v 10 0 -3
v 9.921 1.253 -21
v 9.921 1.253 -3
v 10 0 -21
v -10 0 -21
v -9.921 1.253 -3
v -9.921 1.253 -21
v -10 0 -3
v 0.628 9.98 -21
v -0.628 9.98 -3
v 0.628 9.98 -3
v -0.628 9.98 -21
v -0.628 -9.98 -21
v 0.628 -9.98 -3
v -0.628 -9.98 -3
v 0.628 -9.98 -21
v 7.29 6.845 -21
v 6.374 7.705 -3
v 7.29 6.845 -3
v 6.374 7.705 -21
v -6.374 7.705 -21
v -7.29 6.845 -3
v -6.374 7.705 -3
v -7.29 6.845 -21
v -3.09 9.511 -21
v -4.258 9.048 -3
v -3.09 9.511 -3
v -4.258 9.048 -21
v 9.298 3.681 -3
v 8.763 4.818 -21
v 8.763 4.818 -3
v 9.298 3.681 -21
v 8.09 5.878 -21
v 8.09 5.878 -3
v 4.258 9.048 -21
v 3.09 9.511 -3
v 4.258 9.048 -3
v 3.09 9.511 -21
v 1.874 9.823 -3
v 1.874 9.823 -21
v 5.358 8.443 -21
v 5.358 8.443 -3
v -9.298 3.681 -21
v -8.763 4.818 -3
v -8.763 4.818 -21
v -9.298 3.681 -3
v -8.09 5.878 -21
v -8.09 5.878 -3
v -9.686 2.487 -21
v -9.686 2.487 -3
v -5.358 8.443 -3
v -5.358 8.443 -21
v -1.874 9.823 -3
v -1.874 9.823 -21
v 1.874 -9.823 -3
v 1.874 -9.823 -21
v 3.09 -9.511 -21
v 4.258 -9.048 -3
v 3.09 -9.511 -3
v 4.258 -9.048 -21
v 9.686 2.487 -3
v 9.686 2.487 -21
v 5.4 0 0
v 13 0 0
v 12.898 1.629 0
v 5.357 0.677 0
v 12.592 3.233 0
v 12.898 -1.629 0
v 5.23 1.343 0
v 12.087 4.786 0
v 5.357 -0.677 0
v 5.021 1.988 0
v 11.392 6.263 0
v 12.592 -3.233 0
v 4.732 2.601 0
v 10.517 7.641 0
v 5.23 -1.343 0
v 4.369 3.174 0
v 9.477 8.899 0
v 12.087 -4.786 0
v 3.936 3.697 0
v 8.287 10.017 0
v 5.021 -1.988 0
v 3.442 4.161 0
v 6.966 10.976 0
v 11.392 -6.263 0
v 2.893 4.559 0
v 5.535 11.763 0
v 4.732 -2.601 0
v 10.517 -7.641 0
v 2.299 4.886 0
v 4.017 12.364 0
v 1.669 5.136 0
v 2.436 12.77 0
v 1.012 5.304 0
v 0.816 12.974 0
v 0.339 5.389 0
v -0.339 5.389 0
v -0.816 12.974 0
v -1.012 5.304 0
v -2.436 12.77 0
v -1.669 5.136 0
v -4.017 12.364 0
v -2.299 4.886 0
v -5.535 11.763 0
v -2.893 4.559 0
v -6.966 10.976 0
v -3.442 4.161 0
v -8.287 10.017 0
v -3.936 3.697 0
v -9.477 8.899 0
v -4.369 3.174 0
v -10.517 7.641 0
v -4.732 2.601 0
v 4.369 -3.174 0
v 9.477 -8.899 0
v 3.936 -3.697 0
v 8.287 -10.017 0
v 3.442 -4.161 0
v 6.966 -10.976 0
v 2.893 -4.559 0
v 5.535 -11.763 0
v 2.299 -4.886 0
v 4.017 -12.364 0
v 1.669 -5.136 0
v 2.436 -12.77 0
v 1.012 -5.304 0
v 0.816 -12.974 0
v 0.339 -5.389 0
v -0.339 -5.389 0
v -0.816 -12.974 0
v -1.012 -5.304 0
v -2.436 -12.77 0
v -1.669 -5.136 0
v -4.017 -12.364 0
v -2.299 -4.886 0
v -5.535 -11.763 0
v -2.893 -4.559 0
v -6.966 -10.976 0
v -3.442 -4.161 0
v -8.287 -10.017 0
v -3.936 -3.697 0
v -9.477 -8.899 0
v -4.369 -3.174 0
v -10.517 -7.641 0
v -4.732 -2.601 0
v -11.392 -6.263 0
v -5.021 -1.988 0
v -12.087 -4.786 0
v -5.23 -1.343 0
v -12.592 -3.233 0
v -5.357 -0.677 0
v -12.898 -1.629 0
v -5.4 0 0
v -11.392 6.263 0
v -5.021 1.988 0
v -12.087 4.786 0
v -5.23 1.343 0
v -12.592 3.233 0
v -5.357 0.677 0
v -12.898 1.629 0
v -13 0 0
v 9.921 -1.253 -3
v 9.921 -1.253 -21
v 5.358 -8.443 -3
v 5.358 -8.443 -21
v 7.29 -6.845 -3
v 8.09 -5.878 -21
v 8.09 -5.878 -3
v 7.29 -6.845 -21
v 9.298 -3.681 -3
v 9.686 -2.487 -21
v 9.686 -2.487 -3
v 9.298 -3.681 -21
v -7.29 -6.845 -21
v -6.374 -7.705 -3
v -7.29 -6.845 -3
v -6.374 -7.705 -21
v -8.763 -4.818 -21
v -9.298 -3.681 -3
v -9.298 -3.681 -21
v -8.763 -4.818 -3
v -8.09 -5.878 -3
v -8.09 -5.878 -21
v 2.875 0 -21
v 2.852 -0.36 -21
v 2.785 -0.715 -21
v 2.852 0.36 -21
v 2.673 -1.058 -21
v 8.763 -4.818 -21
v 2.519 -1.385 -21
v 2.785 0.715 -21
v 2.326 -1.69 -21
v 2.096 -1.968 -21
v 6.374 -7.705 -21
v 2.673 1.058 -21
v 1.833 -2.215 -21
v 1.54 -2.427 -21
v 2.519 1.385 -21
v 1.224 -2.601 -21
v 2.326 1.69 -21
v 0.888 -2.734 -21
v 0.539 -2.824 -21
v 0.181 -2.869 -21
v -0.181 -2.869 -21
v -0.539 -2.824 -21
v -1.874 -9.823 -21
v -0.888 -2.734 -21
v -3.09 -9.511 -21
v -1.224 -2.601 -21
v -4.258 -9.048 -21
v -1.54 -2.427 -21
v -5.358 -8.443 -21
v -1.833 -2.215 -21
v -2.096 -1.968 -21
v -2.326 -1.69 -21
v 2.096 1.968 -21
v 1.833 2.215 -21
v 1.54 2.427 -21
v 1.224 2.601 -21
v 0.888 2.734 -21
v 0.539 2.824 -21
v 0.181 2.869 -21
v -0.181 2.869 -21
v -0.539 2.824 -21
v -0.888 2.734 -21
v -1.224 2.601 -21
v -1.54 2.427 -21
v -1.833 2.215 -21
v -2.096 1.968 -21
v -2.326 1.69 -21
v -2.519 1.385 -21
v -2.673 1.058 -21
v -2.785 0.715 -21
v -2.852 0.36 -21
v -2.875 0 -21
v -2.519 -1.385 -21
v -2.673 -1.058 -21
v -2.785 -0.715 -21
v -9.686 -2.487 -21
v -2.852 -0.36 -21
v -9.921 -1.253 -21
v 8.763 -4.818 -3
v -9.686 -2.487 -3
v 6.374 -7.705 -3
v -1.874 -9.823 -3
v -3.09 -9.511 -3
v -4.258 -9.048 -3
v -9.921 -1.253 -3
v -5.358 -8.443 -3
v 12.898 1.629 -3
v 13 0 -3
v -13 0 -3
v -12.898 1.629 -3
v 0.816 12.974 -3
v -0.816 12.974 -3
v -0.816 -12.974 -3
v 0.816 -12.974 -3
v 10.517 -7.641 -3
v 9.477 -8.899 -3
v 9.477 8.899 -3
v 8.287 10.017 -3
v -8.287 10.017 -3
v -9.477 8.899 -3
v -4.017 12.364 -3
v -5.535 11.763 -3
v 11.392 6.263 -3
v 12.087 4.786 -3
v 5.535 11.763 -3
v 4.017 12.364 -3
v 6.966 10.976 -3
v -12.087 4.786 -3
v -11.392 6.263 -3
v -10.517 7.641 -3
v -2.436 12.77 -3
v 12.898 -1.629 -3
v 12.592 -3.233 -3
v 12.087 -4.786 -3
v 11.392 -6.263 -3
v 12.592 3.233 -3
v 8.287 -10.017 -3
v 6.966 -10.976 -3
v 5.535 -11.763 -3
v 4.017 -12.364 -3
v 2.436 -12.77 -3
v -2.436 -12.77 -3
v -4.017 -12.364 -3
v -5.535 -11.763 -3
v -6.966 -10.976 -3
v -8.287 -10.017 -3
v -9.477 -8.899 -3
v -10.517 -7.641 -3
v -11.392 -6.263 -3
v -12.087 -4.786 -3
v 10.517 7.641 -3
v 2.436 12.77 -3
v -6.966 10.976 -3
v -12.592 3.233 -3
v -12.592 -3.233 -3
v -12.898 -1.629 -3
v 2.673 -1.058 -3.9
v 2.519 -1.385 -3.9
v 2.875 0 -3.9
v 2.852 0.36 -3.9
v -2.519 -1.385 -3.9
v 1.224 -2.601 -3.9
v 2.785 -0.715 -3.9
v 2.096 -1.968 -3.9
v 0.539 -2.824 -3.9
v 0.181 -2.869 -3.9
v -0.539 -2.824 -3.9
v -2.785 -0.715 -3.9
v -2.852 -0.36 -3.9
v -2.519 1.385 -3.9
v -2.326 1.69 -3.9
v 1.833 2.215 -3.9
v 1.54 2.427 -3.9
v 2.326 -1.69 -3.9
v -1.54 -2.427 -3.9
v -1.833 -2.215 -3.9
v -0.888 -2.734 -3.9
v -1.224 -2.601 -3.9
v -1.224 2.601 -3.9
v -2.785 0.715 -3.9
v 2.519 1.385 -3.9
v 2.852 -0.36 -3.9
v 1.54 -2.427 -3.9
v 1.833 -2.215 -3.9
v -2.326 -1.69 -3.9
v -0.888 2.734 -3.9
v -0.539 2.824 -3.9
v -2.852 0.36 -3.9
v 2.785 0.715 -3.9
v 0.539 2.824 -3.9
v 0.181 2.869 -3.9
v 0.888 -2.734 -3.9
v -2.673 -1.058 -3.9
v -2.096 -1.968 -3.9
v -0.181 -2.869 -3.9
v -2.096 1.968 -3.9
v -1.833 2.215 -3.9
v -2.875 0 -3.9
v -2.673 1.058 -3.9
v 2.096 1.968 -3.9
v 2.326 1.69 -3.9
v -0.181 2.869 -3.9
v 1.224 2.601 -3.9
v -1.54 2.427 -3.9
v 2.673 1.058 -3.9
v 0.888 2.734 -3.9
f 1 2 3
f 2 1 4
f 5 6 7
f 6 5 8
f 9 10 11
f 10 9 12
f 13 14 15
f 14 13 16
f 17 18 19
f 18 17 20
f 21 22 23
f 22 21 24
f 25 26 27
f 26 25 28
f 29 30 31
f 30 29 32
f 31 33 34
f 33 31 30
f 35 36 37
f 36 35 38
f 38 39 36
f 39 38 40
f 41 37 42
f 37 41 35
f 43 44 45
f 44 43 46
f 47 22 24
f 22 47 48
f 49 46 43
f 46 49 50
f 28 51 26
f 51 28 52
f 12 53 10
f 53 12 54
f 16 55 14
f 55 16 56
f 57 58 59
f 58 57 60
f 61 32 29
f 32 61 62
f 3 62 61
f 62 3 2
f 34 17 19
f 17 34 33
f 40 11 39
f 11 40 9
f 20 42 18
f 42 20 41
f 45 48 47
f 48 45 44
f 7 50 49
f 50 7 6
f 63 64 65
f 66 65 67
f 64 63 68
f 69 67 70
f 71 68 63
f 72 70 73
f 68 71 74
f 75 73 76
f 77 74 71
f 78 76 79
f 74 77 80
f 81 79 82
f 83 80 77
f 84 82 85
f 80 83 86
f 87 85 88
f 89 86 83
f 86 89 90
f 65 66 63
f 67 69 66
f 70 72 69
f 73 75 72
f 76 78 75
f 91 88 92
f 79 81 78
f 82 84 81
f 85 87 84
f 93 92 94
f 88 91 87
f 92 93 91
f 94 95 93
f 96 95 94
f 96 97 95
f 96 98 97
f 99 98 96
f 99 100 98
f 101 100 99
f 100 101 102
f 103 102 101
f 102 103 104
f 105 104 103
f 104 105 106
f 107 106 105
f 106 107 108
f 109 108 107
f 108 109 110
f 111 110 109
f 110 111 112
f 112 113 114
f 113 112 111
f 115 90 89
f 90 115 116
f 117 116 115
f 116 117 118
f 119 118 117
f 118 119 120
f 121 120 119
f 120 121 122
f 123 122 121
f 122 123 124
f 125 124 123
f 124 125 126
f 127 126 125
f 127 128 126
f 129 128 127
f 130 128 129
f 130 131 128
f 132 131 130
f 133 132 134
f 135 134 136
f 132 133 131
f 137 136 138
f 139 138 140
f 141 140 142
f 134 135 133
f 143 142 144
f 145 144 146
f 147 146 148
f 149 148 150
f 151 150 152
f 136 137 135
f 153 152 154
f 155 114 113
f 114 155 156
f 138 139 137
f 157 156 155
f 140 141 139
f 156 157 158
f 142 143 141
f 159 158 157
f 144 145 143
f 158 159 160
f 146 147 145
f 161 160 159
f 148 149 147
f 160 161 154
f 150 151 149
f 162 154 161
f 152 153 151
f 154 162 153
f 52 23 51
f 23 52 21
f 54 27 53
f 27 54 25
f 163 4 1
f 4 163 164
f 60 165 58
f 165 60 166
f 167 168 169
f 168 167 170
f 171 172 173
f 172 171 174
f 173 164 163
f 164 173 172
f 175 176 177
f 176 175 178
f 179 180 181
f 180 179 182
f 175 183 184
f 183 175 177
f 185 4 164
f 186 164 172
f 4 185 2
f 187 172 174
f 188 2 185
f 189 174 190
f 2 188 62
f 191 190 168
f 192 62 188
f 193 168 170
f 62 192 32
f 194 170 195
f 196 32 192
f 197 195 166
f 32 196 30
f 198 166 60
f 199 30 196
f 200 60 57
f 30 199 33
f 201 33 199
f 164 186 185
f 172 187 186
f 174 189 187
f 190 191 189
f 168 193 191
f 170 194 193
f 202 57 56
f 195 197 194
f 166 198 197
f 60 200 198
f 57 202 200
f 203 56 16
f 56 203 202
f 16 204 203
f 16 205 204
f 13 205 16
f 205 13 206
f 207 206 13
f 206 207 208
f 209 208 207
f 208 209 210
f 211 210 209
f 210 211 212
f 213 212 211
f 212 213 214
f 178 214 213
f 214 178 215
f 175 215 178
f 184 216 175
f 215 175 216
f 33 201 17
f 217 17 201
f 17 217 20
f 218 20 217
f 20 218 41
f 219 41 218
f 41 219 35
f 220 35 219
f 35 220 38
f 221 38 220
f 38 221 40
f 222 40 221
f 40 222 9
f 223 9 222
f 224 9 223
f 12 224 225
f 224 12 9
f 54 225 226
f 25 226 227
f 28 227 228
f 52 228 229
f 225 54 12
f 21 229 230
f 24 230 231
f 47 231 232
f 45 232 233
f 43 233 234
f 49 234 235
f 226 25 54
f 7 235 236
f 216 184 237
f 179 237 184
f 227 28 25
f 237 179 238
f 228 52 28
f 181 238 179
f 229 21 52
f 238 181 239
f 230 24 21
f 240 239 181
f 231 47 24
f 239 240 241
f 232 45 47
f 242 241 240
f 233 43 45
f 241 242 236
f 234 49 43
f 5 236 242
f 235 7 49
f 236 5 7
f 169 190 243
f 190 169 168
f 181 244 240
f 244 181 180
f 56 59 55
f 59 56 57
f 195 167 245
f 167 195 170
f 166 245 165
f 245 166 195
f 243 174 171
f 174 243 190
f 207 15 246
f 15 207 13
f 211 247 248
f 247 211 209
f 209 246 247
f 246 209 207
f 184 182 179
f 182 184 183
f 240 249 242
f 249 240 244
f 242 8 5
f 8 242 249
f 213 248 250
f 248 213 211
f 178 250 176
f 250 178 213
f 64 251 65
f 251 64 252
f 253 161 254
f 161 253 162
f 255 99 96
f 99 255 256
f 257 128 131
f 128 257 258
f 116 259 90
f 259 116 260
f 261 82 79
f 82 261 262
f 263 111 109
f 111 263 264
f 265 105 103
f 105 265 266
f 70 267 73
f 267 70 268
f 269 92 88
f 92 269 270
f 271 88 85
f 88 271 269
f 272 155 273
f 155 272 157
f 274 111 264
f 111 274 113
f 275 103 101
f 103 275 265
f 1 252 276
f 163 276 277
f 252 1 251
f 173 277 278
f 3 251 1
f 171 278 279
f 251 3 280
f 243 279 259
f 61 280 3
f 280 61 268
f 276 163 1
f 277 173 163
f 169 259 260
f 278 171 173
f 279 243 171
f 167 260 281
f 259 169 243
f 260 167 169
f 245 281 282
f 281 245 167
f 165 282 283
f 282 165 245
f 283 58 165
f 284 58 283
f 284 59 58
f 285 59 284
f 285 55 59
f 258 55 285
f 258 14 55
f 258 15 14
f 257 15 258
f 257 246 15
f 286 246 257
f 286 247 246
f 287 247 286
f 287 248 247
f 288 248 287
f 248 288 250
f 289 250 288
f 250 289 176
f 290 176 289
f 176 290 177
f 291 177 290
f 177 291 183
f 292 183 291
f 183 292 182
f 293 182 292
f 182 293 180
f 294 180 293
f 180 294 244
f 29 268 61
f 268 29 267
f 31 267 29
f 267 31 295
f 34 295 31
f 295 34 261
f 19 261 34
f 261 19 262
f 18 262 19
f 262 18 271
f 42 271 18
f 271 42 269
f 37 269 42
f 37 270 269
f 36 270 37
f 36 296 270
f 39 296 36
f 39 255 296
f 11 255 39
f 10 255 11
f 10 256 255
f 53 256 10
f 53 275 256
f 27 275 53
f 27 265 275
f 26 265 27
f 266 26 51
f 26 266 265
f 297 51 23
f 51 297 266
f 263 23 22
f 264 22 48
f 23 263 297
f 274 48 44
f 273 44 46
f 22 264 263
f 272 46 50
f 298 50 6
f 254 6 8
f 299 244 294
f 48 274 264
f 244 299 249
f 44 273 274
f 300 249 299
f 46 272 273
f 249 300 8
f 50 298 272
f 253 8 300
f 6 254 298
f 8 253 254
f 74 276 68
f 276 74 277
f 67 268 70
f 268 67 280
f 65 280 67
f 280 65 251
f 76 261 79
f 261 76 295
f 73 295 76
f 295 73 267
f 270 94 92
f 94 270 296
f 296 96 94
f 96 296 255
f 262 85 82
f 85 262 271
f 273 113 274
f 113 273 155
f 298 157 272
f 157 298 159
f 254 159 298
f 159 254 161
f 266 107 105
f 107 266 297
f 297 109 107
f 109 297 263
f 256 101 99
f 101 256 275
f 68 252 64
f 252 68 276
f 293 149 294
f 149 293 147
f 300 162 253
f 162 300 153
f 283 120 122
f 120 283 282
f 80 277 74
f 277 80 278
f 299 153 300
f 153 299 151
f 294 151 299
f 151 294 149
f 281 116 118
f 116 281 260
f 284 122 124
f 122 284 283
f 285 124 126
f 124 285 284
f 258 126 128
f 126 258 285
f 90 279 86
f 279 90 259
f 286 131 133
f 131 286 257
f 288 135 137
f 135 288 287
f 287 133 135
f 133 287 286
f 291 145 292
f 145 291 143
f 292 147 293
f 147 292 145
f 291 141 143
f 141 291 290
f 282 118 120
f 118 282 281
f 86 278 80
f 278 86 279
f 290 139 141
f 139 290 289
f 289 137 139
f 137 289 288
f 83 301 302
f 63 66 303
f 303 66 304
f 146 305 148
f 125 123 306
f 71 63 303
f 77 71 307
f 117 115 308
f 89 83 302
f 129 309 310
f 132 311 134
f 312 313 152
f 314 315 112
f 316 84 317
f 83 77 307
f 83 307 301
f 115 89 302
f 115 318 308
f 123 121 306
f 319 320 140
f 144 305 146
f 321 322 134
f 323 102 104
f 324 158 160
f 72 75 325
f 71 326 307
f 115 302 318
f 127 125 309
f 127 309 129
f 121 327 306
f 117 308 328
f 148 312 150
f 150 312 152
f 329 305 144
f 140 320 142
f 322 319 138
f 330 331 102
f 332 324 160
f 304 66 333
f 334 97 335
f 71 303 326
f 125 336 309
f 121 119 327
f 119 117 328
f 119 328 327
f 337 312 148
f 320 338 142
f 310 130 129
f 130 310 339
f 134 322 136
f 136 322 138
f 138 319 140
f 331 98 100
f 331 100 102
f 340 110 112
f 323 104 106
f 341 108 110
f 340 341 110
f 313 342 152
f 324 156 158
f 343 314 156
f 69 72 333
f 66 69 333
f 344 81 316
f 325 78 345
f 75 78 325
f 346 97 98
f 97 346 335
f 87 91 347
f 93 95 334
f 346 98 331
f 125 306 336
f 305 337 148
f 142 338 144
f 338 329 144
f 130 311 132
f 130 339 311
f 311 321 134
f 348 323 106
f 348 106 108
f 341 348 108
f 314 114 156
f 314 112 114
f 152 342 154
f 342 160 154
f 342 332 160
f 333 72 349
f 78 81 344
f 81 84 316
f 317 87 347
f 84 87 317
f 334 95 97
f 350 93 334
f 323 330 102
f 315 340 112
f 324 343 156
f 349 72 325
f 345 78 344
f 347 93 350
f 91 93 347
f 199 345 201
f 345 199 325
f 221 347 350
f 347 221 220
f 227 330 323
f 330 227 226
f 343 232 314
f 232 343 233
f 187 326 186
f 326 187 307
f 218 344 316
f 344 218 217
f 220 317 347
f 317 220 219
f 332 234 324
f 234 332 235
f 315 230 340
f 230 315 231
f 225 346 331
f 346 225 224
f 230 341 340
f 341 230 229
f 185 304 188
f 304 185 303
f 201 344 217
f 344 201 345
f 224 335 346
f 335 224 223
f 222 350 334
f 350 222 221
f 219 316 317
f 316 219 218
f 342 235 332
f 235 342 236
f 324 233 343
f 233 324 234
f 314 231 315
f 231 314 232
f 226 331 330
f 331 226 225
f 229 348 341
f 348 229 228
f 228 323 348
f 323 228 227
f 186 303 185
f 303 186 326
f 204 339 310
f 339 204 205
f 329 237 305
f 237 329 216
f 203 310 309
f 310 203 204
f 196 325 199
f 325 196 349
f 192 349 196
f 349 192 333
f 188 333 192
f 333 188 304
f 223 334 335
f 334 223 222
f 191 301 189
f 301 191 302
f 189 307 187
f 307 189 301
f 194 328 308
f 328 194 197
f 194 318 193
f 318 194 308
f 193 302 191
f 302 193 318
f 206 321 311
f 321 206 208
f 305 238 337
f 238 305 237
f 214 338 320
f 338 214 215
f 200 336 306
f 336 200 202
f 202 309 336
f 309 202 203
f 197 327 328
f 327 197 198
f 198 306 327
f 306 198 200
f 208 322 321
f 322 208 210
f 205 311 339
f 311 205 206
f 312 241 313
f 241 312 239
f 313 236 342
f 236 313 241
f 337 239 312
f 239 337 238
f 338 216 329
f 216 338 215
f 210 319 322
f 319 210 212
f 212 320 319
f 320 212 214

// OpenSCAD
$fn = 50;


difference() {
	union() {
		translate(v = [0, 0, -21.0000000000]) {
			cylinder(h = 21, r = 10.0000000000);
		}
		translate(v = [0, 0, -3.0000000000]) {
			cylinder(h = 3, r = 13.0000000000);
		}
	}
	union() {
		translate(v = [0, 0, 0]) {
			rotate(a = [0, 0, 0]) {
				difference() {
					union() {
						#translate(v = [0, 0, -21.0000000000]) {
							cylinder(h = 21, r = 2.6000000000);
						}
						#translate(v = [0, 0, -3.9000000000]) {
							cylinder(h = 3.9000000000, r1 = 2.8750000000, r2 = 5.4000000000);
						}
						#translate(v = [0, 0, -21.0000000000]) {
							cylinder(h = 21, r = 2.8750000000);
						}
						#translate(v = [0, 0, -21.0000000000]) {
							cylinder(h = 21, r = 2.6000000000);
						}
					}
					union();
				}
			}
		}
	}
}
